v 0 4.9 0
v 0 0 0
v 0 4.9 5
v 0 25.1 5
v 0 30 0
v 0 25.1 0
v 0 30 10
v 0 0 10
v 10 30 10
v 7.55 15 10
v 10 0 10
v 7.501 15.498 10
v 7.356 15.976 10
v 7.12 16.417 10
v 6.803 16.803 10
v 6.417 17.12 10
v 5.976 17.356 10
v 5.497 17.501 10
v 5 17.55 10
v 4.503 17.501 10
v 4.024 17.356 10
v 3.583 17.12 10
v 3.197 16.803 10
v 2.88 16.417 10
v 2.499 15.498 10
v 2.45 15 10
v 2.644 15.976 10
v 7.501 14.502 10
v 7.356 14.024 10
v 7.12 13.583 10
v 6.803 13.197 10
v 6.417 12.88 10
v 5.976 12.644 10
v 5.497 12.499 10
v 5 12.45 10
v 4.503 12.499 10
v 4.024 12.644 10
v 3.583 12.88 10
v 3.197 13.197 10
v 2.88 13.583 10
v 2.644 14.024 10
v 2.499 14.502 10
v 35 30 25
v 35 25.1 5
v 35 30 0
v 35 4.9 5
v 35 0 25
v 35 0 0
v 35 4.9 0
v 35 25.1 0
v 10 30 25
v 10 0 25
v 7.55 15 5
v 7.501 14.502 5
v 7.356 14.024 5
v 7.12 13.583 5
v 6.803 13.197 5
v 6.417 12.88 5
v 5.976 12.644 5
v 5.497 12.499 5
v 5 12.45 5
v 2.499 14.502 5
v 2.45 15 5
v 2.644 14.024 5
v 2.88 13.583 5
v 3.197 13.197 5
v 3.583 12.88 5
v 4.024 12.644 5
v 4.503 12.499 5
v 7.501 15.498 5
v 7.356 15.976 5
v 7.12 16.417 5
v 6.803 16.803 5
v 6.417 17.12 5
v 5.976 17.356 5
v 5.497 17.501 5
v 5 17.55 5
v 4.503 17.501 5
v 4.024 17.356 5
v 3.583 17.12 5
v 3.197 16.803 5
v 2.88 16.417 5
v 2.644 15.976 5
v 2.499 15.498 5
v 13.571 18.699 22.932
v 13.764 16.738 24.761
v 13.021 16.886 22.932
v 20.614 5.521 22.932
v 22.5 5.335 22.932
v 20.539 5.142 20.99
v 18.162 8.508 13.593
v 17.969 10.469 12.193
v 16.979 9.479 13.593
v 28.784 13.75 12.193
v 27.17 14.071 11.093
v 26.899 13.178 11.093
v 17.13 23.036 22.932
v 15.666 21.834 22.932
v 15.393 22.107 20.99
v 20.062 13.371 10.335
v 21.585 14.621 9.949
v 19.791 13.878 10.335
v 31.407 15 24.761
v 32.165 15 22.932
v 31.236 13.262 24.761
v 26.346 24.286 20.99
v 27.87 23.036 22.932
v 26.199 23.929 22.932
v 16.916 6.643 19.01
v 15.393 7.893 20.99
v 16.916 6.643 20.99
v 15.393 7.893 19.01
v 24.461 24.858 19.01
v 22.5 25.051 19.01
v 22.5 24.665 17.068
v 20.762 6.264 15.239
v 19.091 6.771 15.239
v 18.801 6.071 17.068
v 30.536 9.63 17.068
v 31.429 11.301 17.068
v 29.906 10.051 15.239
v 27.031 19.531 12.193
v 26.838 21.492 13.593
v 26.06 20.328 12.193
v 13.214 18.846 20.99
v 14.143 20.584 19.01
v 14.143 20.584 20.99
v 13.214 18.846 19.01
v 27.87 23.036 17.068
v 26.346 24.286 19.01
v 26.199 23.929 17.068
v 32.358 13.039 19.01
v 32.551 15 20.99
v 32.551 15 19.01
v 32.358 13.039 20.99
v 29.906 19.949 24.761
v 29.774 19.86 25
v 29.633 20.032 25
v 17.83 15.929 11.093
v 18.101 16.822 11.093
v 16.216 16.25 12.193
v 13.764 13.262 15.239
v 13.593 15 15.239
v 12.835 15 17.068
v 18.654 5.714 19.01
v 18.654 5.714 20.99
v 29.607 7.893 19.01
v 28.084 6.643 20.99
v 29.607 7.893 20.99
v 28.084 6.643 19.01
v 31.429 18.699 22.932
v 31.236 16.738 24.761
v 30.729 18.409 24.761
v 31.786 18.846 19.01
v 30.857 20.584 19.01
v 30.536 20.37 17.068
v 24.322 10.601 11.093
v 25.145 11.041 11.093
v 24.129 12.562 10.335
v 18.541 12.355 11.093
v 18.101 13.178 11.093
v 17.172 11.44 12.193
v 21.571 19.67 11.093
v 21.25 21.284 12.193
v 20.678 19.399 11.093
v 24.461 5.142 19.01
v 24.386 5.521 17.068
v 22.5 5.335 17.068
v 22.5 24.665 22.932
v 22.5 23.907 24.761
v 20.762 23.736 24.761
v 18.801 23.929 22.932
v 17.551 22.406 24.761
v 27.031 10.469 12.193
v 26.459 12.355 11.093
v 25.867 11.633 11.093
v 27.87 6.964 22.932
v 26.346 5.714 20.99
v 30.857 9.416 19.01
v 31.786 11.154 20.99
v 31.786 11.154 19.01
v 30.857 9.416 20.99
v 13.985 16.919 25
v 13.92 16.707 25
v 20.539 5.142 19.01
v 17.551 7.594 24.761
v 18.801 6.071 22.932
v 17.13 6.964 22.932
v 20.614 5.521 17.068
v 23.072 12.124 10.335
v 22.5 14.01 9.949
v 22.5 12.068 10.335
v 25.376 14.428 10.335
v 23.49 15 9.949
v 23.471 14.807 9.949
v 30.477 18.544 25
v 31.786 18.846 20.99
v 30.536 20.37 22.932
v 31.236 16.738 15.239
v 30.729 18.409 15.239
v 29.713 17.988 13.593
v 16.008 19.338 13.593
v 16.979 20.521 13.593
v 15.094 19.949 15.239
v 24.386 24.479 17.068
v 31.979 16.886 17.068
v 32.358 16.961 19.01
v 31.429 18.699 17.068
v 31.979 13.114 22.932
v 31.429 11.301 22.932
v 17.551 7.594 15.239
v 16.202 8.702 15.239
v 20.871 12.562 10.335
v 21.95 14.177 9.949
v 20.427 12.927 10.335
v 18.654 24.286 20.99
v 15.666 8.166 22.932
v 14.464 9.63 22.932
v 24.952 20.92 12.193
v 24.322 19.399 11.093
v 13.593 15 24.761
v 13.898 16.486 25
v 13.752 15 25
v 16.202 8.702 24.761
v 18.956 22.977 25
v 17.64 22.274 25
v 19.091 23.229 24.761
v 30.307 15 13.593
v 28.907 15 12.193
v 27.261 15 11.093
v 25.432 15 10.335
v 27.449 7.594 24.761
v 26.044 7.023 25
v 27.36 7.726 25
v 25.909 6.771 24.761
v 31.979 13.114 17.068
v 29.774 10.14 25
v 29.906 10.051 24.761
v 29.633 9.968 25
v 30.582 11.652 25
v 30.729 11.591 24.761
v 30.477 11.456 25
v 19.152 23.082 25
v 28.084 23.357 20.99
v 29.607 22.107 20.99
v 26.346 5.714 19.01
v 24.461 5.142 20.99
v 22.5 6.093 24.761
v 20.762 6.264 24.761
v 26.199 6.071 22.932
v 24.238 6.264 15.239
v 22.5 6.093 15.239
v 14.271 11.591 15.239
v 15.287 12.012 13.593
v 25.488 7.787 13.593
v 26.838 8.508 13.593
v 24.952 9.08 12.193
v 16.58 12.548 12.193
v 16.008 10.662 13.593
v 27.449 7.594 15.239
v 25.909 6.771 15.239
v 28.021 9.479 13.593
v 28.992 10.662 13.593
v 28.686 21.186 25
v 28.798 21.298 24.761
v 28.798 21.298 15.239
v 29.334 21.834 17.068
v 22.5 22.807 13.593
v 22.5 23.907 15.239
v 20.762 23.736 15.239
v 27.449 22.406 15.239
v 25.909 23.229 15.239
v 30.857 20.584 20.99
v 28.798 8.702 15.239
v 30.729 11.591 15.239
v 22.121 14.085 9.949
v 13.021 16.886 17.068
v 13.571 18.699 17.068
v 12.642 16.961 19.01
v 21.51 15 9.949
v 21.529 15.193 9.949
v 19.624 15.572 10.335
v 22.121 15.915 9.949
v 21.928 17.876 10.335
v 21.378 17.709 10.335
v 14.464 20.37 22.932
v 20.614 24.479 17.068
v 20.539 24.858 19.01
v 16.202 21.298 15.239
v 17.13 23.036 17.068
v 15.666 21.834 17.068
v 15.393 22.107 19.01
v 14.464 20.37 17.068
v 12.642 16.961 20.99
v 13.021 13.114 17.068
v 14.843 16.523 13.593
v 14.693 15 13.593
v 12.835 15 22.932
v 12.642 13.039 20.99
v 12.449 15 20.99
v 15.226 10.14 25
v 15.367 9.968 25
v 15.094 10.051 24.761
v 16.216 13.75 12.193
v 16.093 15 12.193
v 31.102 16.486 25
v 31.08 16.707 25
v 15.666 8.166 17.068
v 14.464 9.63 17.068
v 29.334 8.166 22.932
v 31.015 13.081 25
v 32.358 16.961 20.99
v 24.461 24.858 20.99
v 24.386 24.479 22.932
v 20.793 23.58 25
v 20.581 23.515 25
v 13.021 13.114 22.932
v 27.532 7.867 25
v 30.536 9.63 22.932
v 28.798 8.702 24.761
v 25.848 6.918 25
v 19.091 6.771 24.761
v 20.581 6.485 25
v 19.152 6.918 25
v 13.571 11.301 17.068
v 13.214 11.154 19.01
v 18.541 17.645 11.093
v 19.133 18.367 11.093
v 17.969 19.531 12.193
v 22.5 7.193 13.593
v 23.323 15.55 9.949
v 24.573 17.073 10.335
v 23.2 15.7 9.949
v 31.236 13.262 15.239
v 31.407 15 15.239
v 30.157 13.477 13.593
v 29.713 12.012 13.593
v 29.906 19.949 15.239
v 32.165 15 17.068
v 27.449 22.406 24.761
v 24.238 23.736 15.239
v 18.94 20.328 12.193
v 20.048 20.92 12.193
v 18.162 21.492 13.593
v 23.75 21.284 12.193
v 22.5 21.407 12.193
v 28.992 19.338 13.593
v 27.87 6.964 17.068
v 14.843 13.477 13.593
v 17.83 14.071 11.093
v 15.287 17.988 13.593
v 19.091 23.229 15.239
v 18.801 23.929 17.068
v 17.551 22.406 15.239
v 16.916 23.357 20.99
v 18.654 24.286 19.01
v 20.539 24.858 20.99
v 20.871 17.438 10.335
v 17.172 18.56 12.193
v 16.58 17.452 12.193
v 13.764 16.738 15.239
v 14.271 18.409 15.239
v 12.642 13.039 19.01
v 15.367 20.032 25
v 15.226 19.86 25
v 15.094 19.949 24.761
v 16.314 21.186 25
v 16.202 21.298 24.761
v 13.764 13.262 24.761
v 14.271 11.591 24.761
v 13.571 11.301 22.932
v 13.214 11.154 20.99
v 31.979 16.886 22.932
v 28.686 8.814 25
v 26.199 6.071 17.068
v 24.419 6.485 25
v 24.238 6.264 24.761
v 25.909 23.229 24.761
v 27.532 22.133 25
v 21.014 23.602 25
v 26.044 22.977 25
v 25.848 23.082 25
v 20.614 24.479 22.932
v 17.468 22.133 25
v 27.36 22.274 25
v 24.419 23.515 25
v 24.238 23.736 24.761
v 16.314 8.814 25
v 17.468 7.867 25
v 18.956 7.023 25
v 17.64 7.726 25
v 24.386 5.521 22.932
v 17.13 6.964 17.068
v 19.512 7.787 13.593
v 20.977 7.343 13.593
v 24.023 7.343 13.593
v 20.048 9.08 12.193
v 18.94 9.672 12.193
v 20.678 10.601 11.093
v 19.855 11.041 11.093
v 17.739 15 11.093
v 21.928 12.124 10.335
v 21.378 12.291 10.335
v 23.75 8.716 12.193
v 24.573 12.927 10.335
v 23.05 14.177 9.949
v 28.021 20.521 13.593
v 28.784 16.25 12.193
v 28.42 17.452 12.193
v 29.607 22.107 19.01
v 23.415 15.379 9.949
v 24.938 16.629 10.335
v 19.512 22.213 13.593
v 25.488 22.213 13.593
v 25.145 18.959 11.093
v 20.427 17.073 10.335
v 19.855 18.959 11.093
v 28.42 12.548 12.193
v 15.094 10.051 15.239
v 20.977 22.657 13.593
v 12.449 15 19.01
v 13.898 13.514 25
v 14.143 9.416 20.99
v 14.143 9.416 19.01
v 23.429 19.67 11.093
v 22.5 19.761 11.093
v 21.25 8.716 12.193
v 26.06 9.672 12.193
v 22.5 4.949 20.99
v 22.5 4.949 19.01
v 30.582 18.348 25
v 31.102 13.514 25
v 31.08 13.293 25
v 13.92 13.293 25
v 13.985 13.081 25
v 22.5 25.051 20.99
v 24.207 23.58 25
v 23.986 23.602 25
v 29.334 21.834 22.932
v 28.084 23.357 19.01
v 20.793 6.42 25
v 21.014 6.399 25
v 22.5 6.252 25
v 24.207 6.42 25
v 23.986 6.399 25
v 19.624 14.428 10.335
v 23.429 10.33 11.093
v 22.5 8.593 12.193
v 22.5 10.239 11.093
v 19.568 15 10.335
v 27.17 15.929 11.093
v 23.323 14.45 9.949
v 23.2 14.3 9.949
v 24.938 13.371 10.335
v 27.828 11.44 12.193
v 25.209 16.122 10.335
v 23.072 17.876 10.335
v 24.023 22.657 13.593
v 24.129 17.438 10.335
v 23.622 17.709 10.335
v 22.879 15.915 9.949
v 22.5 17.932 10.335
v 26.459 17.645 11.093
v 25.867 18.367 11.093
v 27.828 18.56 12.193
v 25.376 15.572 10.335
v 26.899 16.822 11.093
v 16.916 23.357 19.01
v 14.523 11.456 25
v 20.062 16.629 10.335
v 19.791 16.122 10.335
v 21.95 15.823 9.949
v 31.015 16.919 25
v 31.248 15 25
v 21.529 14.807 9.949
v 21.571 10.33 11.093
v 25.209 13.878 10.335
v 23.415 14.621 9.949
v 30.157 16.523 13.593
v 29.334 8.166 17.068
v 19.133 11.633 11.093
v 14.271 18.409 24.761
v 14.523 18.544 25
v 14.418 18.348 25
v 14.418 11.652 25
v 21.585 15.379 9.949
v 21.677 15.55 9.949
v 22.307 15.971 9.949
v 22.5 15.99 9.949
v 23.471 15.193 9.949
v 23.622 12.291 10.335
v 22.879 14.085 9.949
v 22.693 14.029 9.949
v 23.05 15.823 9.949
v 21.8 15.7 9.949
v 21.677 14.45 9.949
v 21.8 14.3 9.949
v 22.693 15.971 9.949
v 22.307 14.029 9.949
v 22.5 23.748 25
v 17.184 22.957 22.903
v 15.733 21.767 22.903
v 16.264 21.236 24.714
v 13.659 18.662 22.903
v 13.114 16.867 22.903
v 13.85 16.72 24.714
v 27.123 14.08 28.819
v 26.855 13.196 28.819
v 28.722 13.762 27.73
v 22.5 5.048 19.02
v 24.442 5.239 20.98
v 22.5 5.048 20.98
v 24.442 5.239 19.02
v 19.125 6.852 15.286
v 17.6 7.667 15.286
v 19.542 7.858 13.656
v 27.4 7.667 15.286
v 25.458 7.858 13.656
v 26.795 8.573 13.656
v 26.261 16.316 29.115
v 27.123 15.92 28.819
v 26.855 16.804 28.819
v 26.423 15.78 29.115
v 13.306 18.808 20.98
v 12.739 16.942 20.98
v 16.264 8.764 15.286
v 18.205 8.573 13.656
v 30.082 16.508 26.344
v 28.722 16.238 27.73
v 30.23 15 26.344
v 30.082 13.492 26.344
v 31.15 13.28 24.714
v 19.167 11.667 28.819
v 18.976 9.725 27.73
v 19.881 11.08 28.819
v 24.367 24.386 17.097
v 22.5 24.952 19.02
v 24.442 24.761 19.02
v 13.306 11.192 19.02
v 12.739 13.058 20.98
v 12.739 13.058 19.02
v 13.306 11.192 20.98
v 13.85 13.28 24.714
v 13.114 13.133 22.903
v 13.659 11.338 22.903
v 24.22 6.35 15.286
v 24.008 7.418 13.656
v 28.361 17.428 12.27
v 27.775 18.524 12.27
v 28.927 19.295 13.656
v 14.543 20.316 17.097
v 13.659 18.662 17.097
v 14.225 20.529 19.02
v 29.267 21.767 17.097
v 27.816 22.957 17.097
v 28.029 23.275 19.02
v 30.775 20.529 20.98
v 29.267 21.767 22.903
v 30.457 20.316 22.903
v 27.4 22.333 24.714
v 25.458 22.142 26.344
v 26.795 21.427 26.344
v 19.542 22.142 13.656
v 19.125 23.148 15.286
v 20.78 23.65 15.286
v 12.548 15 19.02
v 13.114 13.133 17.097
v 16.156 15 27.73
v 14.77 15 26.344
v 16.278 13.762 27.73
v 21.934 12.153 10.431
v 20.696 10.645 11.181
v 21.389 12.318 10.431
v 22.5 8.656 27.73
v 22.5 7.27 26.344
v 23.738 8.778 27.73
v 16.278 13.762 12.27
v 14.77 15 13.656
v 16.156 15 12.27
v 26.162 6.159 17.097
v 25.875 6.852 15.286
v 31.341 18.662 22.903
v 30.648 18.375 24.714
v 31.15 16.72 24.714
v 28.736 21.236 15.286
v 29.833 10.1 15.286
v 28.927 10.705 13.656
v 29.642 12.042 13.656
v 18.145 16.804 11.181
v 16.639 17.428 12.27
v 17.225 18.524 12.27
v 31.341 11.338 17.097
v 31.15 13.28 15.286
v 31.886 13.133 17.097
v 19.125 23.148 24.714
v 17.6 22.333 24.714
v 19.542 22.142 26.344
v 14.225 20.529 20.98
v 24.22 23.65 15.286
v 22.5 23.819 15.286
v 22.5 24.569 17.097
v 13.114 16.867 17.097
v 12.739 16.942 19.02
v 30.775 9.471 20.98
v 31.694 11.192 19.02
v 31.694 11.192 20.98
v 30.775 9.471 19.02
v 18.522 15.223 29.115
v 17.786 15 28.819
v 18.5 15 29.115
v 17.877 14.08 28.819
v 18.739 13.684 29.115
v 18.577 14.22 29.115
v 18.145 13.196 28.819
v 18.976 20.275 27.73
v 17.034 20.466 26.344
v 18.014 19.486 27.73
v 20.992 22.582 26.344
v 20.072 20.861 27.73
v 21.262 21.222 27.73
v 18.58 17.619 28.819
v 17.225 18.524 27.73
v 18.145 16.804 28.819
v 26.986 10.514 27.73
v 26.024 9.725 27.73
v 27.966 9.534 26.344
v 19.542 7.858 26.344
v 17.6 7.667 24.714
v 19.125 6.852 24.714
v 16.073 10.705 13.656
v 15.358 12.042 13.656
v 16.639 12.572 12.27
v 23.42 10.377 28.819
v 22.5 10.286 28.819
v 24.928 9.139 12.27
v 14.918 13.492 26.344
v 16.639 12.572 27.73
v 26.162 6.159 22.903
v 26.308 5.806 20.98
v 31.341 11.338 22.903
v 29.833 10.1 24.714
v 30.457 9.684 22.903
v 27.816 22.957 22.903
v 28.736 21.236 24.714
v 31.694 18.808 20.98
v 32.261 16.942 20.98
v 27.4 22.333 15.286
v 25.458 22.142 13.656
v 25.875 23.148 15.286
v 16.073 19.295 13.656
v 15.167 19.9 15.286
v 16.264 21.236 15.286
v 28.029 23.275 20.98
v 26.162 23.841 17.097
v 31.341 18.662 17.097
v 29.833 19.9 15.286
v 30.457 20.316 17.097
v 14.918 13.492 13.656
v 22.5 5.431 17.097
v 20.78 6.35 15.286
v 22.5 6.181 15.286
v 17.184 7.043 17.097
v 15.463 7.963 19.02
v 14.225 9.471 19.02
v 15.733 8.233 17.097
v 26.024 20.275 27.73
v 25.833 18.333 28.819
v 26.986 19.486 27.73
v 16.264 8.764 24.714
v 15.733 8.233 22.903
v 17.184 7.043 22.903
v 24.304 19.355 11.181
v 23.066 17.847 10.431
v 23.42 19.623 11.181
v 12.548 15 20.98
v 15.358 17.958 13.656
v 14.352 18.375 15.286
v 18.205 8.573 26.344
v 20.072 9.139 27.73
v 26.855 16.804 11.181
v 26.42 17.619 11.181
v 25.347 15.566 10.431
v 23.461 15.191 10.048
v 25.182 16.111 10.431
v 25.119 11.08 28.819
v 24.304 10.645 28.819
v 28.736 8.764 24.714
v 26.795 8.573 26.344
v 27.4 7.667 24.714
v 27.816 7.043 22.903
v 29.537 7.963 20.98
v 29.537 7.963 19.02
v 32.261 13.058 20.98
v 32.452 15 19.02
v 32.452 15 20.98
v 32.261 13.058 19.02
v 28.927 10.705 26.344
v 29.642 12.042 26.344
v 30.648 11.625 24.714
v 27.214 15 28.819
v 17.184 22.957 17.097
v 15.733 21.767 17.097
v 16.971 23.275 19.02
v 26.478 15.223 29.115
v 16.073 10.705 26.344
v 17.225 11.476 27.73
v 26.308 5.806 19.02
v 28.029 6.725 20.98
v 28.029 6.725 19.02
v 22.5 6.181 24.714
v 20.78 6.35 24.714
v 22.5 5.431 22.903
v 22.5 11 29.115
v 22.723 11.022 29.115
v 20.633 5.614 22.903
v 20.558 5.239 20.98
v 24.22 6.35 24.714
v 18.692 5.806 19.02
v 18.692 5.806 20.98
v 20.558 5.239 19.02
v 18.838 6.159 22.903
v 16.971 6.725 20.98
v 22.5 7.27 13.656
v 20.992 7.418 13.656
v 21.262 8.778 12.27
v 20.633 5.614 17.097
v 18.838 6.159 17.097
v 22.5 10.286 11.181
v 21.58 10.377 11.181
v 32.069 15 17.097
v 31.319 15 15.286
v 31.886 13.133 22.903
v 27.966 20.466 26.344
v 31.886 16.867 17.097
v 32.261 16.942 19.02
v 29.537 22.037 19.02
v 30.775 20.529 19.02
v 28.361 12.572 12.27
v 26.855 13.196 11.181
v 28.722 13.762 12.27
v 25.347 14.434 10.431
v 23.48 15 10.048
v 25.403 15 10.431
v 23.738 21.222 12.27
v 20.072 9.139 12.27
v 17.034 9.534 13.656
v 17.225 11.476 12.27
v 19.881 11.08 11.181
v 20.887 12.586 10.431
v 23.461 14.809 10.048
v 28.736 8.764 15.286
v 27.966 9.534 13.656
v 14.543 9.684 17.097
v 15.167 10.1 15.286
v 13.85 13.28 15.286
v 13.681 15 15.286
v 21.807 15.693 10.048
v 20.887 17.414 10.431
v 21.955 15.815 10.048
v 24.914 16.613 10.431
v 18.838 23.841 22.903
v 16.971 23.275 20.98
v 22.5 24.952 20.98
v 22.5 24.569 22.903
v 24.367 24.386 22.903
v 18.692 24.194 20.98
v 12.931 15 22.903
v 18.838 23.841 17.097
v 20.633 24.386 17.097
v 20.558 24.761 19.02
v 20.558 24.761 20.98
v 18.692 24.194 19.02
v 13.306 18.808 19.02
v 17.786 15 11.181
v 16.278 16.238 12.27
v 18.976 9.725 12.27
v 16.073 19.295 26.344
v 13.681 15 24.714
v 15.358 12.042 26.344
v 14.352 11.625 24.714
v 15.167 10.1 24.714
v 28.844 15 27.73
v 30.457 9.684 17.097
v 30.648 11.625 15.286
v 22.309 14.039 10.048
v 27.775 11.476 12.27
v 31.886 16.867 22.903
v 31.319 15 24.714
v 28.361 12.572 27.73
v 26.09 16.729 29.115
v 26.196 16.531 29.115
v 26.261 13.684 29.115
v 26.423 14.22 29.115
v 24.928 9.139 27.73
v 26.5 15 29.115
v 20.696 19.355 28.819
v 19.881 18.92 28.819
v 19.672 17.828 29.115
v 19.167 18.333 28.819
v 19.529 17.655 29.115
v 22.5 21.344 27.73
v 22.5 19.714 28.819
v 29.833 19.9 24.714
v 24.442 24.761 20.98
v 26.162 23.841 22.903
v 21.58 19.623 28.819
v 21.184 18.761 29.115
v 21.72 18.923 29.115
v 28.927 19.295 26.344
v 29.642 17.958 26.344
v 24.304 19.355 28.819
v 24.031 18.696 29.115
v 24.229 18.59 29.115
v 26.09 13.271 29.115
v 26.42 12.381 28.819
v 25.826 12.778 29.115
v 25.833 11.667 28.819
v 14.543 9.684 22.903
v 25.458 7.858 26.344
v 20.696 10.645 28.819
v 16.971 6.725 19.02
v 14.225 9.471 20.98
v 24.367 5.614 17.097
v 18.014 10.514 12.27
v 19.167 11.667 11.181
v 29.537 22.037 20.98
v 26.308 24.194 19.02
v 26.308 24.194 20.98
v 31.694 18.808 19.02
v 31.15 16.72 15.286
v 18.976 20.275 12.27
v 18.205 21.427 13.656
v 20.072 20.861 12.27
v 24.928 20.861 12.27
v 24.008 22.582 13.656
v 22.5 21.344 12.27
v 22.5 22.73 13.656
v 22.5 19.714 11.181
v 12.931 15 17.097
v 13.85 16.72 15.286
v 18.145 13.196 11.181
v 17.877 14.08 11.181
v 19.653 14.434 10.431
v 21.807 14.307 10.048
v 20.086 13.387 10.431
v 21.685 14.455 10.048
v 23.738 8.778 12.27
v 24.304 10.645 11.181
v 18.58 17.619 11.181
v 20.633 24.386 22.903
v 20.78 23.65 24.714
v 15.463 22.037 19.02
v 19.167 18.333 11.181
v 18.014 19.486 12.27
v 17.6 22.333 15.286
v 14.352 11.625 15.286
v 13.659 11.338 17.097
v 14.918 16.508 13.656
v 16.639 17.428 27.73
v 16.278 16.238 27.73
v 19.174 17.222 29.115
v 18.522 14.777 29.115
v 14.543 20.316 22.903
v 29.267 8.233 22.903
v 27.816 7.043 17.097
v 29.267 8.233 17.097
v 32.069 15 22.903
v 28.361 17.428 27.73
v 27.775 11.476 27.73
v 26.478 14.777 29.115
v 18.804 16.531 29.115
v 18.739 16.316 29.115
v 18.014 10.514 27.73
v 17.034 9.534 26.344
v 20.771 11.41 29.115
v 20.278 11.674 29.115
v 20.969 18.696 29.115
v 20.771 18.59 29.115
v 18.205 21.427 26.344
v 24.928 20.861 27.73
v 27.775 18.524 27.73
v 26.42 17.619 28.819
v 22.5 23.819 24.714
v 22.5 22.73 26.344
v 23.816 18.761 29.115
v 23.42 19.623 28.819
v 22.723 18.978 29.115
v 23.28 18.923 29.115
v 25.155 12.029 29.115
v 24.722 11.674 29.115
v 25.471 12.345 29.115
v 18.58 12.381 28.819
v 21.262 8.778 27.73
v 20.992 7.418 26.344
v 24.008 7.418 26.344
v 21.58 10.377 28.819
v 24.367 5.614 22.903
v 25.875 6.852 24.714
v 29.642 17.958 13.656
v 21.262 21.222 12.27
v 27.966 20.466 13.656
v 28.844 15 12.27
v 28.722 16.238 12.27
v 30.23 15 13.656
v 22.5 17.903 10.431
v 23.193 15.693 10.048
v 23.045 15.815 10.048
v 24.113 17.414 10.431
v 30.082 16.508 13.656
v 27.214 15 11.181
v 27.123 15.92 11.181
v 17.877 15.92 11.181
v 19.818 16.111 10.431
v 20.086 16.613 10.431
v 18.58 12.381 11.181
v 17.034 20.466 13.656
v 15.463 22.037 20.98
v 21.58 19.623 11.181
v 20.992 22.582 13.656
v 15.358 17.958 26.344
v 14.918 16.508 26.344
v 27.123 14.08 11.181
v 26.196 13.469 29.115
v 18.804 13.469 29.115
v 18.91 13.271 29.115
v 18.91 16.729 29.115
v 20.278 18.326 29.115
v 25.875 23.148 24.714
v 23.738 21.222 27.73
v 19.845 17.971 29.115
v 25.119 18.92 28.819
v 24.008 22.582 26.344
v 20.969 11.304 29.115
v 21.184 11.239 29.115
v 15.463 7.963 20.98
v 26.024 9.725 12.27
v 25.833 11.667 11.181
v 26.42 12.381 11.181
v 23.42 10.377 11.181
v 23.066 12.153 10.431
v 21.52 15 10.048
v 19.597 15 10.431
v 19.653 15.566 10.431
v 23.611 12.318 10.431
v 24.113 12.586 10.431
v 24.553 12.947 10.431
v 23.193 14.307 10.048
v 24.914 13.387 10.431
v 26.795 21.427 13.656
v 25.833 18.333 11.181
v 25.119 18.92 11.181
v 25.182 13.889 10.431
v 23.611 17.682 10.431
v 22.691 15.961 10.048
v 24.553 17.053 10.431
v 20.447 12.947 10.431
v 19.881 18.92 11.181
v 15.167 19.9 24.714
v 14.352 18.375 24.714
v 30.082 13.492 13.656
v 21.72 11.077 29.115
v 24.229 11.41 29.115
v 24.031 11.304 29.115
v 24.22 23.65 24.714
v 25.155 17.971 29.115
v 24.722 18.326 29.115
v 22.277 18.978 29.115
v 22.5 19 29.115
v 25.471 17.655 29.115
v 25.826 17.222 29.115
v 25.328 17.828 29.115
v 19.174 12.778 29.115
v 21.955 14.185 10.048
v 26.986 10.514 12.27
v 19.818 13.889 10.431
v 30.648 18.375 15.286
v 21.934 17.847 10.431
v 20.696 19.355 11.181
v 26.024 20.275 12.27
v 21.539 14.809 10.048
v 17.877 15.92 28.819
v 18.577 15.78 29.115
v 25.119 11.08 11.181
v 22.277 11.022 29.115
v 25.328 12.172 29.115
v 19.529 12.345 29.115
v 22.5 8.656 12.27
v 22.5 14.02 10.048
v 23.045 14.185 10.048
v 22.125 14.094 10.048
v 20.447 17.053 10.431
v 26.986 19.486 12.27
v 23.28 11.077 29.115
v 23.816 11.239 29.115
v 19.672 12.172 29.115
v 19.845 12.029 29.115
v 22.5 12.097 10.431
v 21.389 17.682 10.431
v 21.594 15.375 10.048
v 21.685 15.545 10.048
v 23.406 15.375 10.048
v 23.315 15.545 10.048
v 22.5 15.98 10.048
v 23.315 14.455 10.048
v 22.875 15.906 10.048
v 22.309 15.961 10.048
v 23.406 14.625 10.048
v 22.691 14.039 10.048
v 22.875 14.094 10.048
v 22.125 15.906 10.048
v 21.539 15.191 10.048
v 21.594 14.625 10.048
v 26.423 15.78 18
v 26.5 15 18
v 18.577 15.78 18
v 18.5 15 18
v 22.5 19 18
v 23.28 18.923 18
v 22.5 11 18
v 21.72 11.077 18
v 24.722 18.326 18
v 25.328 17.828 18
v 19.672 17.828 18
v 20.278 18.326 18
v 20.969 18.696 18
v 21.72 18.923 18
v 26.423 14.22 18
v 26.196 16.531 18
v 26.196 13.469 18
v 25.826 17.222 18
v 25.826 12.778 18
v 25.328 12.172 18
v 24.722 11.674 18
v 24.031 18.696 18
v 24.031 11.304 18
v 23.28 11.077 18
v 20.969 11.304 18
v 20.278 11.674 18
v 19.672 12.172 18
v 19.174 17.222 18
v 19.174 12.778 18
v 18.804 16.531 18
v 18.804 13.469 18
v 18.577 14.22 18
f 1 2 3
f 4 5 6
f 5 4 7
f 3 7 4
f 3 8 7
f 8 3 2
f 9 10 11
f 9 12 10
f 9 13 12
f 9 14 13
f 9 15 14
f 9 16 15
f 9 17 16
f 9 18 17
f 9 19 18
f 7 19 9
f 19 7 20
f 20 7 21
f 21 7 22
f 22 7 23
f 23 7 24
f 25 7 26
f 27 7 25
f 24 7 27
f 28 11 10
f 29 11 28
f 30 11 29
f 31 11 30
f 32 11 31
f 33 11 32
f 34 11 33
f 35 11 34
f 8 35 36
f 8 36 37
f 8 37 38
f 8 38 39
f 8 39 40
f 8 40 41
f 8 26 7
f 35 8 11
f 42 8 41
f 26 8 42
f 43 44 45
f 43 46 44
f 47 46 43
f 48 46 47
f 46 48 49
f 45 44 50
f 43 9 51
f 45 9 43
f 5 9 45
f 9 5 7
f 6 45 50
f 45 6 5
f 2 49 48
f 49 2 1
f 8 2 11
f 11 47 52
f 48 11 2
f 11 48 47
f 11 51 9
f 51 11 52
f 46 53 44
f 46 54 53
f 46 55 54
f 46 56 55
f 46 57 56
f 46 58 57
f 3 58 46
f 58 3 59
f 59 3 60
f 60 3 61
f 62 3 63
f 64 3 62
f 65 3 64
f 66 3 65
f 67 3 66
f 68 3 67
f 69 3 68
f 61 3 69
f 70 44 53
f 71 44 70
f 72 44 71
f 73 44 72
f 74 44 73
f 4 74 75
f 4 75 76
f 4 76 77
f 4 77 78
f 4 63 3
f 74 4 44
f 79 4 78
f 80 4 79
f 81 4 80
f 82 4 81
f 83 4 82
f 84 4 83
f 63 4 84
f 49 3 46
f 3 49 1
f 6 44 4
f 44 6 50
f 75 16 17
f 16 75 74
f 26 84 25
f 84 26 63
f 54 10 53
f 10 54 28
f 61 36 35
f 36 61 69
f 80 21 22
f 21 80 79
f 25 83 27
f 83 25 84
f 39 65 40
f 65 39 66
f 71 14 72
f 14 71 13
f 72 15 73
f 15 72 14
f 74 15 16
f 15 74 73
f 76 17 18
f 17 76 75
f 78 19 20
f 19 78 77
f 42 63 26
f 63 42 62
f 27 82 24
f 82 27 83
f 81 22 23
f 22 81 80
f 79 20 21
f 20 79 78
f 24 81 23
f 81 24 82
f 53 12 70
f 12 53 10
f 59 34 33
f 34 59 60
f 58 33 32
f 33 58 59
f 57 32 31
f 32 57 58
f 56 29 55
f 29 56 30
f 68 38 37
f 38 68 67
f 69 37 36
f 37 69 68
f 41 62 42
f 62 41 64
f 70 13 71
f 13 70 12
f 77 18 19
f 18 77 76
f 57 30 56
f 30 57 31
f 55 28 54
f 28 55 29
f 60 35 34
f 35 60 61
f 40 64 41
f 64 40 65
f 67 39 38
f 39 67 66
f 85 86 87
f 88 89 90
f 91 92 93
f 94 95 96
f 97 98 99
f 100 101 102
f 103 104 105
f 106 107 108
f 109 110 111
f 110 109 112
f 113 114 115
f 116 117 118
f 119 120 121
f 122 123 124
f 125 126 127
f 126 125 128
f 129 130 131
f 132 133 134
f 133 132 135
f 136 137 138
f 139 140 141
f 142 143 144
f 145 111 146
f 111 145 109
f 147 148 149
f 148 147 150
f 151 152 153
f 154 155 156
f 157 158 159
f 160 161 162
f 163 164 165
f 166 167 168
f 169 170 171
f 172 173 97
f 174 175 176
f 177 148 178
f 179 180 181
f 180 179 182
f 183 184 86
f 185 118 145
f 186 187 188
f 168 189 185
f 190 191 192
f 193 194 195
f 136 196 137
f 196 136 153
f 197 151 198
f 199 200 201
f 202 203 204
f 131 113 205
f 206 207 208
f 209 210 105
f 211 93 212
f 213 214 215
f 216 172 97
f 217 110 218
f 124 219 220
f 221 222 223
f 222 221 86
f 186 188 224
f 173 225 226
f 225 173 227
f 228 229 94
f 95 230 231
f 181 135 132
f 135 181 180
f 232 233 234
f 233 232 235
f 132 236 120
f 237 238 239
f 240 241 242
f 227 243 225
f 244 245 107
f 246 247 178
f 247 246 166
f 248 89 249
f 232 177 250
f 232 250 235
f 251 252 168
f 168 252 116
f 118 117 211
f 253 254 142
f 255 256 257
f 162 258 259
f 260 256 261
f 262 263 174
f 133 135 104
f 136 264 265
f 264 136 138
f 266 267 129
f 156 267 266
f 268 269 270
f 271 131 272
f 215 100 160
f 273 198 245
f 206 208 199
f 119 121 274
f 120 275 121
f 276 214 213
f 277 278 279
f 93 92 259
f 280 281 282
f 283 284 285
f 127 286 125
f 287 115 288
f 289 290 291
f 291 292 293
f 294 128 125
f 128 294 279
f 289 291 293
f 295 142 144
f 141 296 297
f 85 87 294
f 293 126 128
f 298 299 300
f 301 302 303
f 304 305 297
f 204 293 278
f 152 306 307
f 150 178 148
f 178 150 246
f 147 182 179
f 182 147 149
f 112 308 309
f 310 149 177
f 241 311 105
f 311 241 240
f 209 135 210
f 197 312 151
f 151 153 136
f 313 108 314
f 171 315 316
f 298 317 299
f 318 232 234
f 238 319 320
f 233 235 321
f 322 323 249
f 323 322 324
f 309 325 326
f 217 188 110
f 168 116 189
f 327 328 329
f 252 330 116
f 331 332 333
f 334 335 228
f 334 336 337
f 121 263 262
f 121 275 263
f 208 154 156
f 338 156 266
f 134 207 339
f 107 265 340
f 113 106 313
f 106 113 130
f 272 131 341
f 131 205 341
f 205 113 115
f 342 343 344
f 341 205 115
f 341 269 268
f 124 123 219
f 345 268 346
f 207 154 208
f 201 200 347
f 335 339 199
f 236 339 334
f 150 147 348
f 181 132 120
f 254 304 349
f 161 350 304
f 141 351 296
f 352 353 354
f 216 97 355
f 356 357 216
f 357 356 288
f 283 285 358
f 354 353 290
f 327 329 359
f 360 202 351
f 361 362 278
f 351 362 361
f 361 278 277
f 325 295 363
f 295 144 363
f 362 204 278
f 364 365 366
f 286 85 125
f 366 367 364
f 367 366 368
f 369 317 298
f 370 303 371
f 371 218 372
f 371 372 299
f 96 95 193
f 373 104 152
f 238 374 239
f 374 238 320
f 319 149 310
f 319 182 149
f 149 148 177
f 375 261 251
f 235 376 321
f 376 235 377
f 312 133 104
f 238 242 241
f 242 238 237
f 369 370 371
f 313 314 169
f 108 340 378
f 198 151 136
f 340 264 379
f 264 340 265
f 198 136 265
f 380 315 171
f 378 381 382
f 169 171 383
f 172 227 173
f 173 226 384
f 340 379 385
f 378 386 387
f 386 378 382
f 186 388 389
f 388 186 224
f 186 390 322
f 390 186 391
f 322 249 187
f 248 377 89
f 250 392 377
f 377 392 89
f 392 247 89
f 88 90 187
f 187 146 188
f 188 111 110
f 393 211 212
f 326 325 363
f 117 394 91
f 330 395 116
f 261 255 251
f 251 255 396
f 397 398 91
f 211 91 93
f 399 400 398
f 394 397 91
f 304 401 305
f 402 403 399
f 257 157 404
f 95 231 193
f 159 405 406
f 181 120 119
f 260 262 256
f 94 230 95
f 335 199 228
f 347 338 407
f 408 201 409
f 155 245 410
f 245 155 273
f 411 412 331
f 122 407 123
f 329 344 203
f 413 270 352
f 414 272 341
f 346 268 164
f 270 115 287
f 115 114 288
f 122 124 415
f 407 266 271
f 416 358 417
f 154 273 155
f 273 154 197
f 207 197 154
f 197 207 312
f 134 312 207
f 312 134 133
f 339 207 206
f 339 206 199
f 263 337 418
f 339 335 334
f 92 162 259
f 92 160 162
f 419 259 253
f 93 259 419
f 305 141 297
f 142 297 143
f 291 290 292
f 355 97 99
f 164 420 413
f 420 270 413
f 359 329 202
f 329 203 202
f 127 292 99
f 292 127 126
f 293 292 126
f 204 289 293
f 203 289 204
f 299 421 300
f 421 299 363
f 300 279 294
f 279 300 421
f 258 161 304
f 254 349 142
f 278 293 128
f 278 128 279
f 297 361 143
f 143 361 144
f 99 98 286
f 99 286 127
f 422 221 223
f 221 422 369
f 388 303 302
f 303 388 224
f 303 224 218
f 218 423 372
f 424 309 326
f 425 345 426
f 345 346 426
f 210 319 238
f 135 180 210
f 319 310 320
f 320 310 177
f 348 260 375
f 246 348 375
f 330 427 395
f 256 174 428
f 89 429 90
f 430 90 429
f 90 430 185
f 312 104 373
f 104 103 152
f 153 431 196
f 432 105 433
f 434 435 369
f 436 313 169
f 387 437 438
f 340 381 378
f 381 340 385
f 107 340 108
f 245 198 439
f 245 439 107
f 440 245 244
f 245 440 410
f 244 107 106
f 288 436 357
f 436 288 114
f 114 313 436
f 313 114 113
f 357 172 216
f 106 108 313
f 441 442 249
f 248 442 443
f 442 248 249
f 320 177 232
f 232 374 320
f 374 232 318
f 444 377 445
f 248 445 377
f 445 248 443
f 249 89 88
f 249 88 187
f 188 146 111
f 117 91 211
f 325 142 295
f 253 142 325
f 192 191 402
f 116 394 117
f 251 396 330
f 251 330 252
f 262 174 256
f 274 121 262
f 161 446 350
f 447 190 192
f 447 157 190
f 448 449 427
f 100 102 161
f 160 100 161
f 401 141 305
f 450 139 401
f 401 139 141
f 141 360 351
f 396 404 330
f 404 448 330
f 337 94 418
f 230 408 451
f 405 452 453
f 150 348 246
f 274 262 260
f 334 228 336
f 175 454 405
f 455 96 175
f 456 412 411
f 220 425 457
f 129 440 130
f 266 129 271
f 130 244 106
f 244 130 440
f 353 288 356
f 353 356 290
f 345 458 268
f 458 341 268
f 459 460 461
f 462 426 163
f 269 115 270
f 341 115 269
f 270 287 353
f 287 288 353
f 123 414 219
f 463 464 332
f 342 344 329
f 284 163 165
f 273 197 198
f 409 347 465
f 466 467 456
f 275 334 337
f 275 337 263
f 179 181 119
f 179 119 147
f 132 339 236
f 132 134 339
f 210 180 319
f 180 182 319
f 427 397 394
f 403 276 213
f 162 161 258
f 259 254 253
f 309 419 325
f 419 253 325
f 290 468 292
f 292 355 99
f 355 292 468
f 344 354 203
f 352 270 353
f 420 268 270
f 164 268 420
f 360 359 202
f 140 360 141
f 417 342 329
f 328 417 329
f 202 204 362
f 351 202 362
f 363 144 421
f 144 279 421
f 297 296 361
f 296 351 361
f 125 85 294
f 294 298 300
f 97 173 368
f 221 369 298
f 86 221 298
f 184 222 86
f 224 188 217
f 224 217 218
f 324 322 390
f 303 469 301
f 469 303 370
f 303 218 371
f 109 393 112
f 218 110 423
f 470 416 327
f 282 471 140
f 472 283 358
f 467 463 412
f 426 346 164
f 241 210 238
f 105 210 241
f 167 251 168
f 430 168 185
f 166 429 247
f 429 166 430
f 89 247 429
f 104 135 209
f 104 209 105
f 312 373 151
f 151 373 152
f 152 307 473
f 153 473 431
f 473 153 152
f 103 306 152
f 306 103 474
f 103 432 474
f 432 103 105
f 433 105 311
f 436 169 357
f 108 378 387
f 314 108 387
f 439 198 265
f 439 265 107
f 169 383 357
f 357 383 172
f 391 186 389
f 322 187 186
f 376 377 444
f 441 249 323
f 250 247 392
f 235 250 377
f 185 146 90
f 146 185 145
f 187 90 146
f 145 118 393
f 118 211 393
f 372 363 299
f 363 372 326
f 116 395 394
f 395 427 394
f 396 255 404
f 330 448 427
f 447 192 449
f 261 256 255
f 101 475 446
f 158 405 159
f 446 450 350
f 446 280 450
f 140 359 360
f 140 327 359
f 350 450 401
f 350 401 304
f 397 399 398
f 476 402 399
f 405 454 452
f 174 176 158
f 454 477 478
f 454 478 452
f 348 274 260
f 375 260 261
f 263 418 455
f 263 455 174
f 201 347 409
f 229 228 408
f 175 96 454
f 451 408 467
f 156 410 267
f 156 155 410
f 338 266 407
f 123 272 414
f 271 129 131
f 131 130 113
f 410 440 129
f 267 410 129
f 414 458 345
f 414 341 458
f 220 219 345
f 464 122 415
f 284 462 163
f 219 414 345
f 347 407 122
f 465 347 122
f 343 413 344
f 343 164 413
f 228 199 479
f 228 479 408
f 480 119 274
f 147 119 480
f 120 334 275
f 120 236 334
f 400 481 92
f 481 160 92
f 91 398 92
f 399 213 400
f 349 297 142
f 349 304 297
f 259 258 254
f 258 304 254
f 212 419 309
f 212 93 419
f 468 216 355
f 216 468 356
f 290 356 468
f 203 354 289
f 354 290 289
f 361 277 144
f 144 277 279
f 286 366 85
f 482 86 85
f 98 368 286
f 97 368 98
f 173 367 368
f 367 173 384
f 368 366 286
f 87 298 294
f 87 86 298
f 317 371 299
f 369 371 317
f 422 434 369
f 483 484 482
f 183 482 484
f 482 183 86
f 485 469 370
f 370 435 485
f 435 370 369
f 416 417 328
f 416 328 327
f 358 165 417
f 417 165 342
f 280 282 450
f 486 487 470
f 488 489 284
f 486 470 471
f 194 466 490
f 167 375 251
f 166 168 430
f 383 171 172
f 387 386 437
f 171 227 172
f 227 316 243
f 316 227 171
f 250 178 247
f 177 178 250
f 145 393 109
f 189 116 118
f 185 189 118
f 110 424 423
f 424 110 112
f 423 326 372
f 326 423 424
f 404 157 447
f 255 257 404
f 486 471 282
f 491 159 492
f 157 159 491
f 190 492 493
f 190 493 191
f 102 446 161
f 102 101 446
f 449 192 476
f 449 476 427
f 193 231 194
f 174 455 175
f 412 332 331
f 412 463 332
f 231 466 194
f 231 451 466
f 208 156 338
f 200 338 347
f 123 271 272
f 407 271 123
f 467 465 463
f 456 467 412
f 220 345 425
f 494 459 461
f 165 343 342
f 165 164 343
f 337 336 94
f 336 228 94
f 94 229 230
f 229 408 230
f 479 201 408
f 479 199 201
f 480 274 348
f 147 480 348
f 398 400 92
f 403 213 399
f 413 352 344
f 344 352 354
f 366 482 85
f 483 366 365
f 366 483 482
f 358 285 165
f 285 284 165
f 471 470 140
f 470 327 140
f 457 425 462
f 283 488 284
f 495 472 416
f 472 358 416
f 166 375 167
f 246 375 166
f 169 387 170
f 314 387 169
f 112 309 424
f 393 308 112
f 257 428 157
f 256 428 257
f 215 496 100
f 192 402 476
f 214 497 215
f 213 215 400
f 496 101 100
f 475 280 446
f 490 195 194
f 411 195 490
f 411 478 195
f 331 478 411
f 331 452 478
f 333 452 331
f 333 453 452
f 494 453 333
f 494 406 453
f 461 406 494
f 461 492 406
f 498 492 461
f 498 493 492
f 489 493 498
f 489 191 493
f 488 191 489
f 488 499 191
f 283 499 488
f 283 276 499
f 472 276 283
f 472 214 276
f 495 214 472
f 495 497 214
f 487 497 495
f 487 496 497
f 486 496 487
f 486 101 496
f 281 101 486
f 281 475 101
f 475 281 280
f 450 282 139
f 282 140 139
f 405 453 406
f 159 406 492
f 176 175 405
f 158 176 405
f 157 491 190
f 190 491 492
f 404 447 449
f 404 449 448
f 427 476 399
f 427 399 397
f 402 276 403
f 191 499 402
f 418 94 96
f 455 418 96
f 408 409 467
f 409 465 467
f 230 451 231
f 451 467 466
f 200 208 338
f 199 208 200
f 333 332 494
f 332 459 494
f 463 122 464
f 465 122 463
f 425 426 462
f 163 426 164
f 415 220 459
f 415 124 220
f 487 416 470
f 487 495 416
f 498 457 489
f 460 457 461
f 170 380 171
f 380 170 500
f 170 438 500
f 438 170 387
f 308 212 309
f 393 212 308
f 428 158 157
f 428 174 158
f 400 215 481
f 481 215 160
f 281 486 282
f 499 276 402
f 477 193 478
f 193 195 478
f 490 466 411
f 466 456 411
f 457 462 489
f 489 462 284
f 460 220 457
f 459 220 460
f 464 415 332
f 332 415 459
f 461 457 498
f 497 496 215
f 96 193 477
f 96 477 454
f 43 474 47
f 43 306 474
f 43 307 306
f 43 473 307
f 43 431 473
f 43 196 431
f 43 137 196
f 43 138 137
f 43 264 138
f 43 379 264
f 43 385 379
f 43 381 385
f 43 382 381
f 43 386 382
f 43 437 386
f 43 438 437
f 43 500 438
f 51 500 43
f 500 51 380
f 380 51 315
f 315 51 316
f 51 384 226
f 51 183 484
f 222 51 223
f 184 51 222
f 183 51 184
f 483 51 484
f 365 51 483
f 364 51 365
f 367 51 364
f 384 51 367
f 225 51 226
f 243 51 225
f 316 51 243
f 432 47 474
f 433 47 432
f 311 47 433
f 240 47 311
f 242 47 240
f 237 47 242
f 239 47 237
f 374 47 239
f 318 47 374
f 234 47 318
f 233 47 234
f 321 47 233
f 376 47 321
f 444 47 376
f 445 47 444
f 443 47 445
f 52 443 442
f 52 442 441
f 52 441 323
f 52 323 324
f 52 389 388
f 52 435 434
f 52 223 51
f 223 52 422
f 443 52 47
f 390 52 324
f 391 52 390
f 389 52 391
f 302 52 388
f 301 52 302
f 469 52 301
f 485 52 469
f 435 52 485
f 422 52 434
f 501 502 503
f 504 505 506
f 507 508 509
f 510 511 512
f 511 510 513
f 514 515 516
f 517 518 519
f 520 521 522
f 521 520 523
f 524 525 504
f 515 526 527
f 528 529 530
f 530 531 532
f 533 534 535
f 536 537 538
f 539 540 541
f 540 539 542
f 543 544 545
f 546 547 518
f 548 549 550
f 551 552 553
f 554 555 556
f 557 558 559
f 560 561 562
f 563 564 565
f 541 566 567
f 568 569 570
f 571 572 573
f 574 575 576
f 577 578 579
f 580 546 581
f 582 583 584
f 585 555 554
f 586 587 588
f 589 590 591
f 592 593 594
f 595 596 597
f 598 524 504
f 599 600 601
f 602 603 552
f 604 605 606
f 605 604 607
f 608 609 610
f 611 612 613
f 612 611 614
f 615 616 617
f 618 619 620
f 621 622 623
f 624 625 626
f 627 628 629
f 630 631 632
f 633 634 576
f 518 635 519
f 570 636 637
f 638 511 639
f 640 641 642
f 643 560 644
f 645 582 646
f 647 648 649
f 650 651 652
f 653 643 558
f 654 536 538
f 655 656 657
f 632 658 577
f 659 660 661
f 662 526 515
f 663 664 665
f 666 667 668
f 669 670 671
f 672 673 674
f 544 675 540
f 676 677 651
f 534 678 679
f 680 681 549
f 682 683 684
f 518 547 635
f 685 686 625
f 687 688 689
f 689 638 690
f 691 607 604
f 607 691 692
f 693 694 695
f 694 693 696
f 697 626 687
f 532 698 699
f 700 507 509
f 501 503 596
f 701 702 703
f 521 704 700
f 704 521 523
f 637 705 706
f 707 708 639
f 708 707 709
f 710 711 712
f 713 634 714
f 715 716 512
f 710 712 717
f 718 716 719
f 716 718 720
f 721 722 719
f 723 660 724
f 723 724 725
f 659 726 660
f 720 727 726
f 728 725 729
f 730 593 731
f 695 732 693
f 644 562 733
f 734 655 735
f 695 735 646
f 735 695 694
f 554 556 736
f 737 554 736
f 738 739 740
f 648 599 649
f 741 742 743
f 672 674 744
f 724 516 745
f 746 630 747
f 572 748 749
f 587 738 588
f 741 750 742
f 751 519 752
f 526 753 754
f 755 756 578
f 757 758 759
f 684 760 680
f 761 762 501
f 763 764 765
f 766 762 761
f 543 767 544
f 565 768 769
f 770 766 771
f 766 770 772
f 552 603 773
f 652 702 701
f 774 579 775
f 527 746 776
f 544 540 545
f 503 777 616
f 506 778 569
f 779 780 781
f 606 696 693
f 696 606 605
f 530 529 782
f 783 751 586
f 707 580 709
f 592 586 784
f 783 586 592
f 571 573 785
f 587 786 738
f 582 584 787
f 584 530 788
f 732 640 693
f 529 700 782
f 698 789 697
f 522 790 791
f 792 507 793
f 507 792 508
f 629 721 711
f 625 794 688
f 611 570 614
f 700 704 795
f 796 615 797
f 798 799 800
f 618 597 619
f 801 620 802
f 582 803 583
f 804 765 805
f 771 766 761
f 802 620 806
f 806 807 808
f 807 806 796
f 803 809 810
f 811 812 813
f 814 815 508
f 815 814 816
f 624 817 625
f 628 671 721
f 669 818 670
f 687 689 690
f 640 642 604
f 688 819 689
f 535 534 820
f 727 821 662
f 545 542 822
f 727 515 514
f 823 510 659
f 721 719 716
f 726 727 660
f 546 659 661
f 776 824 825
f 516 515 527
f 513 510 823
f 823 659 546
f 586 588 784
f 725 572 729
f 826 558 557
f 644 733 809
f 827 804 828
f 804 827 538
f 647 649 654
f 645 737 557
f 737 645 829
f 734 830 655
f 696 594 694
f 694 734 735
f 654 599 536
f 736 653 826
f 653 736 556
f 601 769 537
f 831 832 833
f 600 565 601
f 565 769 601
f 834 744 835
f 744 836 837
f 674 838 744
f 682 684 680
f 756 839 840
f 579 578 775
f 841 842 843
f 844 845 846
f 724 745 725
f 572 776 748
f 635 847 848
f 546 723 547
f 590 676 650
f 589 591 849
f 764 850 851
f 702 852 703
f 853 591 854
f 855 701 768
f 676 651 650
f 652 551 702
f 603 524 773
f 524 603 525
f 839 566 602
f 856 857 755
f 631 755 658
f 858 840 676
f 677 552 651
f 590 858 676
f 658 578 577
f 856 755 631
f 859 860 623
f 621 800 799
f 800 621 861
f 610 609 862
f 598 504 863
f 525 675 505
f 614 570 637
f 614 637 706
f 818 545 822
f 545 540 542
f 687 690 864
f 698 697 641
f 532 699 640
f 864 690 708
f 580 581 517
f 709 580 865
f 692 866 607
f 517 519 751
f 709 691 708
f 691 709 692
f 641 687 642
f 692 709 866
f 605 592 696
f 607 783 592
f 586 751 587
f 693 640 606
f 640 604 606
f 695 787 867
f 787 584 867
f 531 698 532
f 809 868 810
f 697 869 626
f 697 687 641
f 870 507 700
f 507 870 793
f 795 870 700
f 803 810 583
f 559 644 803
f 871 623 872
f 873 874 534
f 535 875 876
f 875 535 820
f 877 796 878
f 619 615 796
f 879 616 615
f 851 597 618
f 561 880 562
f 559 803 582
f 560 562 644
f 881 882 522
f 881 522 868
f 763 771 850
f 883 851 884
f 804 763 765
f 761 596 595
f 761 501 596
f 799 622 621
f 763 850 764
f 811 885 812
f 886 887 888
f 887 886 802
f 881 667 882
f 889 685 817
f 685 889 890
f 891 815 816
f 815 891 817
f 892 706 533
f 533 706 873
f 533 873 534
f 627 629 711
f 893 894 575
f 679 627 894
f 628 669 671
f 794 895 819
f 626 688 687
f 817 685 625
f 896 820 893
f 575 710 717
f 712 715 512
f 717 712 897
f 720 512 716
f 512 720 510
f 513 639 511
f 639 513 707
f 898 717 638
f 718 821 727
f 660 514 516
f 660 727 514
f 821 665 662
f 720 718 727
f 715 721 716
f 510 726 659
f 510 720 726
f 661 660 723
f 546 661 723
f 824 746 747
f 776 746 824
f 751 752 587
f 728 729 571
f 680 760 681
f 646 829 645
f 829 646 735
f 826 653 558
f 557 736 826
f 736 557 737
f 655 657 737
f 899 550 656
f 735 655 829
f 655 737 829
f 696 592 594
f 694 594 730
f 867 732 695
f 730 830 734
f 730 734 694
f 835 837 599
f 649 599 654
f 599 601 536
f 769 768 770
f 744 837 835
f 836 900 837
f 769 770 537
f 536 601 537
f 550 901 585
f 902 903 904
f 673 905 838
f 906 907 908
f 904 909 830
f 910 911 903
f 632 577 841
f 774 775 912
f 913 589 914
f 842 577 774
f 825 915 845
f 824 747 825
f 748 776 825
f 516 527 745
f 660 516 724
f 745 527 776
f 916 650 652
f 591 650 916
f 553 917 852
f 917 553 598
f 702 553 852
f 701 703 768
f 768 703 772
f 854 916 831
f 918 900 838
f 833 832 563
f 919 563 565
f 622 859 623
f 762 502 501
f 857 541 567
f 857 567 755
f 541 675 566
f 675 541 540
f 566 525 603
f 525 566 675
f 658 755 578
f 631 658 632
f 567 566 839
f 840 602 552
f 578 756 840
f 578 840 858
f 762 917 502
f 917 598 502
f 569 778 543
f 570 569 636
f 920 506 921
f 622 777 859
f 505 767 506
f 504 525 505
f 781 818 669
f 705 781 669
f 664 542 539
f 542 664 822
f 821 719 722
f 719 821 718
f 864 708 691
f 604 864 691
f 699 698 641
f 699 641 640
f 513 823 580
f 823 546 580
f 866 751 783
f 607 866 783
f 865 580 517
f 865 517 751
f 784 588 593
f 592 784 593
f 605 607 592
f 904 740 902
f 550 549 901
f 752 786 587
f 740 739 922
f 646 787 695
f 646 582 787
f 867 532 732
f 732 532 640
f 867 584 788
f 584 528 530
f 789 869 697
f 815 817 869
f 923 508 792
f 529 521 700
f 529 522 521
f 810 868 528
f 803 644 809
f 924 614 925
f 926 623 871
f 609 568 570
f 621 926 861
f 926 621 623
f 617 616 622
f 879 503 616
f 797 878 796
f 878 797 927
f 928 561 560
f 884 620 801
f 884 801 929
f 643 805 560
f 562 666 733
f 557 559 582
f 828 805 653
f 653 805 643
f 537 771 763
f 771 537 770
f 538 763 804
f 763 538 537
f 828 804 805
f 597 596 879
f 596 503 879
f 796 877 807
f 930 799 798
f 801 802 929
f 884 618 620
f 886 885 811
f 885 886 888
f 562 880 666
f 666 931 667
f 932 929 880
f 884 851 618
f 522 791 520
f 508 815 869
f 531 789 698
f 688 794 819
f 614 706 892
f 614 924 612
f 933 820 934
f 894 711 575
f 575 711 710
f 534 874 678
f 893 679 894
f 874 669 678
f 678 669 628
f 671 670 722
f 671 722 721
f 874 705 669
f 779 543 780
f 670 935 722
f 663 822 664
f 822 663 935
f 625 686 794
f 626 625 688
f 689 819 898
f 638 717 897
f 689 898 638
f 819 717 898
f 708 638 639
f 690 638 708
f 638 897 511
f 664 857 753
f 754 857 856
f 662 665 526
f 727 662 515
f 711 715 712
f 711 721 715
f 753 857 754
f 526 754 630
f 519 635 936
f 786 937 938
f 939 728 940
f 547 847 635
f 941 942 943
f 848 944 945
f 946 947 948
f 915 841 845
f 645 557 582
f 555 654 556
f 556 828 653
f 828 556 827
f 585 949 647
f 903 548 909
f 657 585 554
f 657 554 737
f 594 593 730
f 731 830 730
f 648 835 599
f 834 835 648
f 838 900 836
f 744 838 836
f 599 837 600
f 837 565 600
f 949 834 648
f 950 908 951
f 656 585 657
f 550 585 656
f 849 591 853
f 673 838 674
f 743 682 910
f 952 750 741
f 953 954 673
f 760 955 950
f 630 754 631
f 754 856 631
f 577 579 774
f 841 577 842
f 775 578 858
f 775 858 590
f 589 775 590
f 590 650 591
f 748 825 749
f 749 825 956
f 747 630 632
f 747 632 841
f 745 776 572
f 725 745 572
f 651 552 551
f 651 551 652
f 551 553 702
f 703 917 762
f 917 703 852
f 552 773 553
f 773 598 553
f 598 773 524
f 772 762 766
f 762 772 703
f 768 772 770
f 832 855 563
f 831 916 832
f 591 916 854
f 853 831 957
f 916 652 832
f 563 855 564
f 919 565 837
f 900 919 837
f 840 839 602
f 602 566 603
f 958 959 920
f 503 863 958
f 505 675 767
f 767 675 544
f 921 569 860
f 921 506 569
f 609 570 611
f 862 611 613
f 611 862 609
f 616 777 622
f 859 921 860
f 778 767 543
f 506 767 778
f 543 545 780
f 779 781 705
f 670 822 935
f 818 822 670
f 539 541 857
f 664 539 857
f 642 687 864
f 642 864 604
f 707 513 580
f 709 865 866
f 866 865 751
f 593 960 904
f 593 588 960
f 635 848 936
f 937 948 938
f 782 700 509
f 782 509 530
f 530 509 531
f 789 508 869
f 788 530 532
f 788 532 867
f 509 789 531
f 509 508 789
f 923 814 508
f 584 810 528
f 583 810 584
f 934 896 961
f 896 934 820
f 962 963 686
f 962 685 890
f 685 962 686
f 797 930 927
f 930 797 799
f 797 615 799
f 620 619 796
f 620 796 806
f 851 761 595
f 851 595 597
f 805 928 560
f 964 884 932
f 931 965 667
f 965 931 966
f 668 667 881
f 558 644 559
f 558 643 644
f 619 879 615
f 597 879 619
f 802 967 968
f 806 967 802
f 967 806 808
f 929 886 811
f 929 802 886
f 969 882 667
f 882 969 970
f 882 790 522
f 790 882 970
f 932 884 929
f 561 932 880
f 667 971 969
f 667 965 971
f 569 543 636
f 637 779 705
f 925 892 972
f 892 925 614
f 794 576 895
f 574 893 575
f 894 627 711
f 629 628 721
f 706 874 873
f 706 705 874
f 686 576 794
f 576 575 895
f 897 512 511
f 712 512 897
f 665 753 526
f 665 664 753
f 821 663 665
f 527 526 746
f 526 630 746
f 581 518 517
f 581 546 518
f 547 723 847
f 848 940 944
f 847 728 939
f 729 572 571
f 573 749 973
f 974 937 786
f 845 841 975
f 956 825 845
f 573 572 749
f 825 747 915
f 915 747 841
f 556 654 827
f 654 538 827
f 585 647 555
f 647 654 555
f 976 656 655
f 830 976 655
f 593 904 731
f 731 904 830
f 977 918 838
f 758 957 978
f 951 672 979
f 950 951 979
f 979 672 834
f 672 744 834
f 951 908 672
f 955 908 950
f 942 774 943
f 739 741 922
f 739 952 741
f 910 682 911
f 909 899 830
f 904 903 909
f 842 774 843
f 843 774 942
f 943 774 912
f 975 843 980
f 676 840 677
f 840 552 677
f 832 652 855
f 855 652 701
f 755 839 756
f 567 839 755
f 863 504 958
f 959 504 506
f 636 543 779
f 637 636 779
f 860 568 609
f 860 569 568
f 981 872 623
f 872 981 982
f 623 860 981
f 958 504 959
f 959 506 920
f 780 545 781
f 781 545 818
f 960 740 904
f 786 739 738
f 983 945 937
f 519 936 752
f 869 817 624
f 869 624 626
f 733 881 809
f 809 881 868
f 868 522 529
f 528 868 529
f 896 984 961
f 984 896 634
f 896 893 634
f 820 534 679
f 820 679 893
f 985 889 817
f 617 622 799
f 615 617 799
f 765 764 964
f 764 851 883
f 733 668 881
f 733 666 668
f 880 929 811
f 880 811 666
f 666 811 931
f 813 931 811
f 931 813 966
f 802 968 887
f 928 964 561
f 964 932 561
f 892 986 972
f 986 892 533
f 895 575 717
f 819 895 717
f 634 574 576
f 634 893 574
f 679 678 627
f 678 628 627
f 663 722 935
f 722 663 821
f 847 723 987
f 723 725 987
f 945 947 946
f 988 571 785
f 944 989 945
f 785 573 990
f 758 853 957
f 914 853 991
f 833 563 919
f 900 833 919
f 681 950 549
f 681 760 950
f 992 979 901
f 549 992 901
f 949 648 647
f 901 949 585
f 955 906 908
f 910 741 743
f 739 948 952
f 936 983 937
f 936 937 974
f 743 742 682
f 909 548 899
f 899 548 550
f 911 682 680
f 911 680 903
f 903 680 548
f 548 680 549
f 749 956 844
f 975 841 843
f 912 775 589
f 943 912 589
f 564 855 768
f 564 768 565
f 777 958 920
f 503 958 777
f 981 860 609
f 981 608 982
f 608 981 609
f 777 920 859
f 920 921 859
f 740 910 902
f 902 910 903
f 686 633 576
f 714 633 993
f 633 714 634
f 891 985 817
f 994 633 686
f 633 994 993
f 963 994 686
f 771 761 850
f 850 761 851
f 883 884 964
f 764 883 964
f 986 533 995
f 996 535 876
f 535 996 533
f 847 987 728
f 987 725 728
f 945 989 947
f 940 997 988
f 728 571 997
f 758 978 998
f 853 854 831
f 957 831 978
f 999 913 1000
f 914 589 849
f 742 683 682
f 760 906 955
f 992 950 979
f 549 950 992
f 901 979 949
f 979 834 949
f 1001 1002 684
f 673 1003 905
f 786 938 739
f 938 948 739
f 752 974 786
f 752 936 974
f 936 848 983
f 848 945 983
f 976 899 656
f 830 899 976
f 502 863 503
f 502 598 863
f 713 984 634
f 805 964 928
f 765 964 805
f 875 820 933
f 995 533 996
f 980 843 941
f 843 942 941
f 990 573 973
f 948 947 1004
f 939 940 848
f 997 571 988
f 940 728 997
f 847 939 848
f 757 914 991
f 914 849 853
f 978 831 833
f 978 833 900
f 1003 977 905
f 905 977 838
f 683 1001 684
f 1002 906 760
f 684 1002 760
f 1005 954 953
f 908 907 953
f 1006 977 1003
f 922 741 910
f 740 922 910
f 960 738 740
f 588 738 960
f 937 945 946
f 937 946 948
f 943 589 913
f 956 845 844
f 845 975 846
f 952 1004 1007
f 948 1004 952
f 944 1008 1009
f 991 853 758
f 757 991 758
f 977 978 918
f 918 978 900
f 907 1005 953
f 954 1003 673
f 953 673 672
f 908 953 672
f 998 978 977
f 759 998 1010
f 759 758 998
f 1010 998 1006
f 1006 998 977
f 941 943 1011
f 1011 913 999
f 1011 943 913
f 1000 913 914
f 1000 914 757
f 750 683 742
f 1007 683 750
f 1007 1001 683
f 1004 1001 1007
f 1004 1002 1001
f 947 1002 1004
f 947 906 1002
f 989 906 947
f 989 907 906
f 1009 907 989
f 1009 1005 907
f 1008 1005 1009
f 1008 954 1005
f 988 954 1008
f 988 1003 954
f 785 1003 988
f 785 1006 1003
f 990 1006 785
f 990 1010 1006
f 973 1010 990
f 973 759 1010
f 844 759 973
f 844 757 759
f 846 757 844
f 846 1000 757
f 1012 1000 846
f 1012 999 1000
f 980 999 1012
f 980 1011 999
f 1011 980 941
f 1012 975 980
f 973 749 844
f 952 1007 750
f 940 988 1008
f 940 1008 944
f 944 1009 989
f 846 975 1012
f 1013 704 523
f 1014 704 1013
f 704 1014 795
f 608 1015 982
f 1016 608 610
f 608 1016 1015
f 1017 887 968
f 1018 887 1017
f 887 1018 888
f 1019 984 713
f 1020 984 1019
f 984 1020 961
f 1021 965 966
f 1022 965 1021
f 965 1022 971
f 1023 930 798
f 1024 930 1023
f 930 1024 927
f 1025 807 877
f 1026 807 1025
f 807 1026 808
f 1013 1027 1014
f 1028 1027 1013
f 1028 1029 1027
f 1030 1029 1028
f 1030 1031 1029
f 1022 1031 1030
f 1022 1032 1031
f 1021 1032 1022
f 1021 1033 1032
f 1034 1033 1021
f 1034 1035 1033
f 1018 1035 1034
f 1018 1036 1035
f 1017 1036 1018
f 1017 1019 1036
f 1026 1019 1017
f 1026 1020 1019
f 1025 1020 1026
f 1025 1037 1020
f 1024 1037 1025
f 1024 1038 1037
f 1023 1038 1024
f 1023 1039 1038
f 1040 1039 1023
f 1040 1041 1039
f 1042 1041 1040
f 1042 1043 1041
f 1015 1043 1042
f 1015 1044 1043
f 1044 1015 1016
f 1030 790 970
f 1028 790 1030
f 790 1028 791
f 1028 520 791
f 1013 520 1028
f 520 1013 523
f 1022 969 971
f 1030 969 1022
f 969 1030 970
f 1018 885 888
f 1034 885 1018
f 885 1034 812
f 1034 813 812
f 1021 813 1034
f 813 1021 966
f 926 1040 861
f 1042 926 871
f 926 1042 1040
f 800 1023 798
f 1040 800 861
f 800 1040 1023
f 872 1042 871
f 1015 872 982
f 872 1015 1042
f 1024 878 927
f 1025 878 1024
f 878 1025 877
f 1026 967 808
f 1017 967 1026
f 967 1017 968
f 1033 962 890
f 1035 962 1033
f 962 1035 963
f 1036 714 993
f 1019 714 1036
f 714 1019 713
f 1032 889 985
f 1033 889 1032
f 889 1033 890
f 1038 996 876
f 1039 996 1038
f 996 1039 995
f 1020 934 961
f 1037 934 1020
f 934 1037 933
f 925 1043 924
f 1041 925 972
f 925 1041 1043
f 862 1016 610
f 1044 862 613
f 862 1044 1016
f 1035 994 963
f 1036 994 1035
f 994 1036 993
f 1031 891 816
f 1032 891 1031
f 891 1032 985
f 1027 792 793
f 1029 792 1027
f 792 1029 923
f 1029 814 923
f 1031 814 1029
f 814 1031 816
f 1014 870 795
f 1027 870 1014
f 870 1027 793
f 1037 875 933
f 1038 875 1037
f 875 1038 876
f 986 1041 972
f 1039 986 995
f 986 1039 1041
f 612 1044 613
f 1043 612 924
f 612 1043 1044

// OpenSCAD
$fn=32;

difference(){
    union(){
        cube([35,30,10]);
        translate([10,0,10])cube([25,30,25]);
    };
    translate([-1,4.9,-15])cube([50,20.2,20]);
    translate([5,15,4])cylinder(d=5.1,h=10);
    translate([22.5,15,20])sphere(d=20.2);
    translate([5,-1,25])cube([40,40,30]);
};
translate([22.5,15,20]) difference(){
    sphere(d=20);
    translate([0,0,-2])cylinder(d=8,h=20);
};
